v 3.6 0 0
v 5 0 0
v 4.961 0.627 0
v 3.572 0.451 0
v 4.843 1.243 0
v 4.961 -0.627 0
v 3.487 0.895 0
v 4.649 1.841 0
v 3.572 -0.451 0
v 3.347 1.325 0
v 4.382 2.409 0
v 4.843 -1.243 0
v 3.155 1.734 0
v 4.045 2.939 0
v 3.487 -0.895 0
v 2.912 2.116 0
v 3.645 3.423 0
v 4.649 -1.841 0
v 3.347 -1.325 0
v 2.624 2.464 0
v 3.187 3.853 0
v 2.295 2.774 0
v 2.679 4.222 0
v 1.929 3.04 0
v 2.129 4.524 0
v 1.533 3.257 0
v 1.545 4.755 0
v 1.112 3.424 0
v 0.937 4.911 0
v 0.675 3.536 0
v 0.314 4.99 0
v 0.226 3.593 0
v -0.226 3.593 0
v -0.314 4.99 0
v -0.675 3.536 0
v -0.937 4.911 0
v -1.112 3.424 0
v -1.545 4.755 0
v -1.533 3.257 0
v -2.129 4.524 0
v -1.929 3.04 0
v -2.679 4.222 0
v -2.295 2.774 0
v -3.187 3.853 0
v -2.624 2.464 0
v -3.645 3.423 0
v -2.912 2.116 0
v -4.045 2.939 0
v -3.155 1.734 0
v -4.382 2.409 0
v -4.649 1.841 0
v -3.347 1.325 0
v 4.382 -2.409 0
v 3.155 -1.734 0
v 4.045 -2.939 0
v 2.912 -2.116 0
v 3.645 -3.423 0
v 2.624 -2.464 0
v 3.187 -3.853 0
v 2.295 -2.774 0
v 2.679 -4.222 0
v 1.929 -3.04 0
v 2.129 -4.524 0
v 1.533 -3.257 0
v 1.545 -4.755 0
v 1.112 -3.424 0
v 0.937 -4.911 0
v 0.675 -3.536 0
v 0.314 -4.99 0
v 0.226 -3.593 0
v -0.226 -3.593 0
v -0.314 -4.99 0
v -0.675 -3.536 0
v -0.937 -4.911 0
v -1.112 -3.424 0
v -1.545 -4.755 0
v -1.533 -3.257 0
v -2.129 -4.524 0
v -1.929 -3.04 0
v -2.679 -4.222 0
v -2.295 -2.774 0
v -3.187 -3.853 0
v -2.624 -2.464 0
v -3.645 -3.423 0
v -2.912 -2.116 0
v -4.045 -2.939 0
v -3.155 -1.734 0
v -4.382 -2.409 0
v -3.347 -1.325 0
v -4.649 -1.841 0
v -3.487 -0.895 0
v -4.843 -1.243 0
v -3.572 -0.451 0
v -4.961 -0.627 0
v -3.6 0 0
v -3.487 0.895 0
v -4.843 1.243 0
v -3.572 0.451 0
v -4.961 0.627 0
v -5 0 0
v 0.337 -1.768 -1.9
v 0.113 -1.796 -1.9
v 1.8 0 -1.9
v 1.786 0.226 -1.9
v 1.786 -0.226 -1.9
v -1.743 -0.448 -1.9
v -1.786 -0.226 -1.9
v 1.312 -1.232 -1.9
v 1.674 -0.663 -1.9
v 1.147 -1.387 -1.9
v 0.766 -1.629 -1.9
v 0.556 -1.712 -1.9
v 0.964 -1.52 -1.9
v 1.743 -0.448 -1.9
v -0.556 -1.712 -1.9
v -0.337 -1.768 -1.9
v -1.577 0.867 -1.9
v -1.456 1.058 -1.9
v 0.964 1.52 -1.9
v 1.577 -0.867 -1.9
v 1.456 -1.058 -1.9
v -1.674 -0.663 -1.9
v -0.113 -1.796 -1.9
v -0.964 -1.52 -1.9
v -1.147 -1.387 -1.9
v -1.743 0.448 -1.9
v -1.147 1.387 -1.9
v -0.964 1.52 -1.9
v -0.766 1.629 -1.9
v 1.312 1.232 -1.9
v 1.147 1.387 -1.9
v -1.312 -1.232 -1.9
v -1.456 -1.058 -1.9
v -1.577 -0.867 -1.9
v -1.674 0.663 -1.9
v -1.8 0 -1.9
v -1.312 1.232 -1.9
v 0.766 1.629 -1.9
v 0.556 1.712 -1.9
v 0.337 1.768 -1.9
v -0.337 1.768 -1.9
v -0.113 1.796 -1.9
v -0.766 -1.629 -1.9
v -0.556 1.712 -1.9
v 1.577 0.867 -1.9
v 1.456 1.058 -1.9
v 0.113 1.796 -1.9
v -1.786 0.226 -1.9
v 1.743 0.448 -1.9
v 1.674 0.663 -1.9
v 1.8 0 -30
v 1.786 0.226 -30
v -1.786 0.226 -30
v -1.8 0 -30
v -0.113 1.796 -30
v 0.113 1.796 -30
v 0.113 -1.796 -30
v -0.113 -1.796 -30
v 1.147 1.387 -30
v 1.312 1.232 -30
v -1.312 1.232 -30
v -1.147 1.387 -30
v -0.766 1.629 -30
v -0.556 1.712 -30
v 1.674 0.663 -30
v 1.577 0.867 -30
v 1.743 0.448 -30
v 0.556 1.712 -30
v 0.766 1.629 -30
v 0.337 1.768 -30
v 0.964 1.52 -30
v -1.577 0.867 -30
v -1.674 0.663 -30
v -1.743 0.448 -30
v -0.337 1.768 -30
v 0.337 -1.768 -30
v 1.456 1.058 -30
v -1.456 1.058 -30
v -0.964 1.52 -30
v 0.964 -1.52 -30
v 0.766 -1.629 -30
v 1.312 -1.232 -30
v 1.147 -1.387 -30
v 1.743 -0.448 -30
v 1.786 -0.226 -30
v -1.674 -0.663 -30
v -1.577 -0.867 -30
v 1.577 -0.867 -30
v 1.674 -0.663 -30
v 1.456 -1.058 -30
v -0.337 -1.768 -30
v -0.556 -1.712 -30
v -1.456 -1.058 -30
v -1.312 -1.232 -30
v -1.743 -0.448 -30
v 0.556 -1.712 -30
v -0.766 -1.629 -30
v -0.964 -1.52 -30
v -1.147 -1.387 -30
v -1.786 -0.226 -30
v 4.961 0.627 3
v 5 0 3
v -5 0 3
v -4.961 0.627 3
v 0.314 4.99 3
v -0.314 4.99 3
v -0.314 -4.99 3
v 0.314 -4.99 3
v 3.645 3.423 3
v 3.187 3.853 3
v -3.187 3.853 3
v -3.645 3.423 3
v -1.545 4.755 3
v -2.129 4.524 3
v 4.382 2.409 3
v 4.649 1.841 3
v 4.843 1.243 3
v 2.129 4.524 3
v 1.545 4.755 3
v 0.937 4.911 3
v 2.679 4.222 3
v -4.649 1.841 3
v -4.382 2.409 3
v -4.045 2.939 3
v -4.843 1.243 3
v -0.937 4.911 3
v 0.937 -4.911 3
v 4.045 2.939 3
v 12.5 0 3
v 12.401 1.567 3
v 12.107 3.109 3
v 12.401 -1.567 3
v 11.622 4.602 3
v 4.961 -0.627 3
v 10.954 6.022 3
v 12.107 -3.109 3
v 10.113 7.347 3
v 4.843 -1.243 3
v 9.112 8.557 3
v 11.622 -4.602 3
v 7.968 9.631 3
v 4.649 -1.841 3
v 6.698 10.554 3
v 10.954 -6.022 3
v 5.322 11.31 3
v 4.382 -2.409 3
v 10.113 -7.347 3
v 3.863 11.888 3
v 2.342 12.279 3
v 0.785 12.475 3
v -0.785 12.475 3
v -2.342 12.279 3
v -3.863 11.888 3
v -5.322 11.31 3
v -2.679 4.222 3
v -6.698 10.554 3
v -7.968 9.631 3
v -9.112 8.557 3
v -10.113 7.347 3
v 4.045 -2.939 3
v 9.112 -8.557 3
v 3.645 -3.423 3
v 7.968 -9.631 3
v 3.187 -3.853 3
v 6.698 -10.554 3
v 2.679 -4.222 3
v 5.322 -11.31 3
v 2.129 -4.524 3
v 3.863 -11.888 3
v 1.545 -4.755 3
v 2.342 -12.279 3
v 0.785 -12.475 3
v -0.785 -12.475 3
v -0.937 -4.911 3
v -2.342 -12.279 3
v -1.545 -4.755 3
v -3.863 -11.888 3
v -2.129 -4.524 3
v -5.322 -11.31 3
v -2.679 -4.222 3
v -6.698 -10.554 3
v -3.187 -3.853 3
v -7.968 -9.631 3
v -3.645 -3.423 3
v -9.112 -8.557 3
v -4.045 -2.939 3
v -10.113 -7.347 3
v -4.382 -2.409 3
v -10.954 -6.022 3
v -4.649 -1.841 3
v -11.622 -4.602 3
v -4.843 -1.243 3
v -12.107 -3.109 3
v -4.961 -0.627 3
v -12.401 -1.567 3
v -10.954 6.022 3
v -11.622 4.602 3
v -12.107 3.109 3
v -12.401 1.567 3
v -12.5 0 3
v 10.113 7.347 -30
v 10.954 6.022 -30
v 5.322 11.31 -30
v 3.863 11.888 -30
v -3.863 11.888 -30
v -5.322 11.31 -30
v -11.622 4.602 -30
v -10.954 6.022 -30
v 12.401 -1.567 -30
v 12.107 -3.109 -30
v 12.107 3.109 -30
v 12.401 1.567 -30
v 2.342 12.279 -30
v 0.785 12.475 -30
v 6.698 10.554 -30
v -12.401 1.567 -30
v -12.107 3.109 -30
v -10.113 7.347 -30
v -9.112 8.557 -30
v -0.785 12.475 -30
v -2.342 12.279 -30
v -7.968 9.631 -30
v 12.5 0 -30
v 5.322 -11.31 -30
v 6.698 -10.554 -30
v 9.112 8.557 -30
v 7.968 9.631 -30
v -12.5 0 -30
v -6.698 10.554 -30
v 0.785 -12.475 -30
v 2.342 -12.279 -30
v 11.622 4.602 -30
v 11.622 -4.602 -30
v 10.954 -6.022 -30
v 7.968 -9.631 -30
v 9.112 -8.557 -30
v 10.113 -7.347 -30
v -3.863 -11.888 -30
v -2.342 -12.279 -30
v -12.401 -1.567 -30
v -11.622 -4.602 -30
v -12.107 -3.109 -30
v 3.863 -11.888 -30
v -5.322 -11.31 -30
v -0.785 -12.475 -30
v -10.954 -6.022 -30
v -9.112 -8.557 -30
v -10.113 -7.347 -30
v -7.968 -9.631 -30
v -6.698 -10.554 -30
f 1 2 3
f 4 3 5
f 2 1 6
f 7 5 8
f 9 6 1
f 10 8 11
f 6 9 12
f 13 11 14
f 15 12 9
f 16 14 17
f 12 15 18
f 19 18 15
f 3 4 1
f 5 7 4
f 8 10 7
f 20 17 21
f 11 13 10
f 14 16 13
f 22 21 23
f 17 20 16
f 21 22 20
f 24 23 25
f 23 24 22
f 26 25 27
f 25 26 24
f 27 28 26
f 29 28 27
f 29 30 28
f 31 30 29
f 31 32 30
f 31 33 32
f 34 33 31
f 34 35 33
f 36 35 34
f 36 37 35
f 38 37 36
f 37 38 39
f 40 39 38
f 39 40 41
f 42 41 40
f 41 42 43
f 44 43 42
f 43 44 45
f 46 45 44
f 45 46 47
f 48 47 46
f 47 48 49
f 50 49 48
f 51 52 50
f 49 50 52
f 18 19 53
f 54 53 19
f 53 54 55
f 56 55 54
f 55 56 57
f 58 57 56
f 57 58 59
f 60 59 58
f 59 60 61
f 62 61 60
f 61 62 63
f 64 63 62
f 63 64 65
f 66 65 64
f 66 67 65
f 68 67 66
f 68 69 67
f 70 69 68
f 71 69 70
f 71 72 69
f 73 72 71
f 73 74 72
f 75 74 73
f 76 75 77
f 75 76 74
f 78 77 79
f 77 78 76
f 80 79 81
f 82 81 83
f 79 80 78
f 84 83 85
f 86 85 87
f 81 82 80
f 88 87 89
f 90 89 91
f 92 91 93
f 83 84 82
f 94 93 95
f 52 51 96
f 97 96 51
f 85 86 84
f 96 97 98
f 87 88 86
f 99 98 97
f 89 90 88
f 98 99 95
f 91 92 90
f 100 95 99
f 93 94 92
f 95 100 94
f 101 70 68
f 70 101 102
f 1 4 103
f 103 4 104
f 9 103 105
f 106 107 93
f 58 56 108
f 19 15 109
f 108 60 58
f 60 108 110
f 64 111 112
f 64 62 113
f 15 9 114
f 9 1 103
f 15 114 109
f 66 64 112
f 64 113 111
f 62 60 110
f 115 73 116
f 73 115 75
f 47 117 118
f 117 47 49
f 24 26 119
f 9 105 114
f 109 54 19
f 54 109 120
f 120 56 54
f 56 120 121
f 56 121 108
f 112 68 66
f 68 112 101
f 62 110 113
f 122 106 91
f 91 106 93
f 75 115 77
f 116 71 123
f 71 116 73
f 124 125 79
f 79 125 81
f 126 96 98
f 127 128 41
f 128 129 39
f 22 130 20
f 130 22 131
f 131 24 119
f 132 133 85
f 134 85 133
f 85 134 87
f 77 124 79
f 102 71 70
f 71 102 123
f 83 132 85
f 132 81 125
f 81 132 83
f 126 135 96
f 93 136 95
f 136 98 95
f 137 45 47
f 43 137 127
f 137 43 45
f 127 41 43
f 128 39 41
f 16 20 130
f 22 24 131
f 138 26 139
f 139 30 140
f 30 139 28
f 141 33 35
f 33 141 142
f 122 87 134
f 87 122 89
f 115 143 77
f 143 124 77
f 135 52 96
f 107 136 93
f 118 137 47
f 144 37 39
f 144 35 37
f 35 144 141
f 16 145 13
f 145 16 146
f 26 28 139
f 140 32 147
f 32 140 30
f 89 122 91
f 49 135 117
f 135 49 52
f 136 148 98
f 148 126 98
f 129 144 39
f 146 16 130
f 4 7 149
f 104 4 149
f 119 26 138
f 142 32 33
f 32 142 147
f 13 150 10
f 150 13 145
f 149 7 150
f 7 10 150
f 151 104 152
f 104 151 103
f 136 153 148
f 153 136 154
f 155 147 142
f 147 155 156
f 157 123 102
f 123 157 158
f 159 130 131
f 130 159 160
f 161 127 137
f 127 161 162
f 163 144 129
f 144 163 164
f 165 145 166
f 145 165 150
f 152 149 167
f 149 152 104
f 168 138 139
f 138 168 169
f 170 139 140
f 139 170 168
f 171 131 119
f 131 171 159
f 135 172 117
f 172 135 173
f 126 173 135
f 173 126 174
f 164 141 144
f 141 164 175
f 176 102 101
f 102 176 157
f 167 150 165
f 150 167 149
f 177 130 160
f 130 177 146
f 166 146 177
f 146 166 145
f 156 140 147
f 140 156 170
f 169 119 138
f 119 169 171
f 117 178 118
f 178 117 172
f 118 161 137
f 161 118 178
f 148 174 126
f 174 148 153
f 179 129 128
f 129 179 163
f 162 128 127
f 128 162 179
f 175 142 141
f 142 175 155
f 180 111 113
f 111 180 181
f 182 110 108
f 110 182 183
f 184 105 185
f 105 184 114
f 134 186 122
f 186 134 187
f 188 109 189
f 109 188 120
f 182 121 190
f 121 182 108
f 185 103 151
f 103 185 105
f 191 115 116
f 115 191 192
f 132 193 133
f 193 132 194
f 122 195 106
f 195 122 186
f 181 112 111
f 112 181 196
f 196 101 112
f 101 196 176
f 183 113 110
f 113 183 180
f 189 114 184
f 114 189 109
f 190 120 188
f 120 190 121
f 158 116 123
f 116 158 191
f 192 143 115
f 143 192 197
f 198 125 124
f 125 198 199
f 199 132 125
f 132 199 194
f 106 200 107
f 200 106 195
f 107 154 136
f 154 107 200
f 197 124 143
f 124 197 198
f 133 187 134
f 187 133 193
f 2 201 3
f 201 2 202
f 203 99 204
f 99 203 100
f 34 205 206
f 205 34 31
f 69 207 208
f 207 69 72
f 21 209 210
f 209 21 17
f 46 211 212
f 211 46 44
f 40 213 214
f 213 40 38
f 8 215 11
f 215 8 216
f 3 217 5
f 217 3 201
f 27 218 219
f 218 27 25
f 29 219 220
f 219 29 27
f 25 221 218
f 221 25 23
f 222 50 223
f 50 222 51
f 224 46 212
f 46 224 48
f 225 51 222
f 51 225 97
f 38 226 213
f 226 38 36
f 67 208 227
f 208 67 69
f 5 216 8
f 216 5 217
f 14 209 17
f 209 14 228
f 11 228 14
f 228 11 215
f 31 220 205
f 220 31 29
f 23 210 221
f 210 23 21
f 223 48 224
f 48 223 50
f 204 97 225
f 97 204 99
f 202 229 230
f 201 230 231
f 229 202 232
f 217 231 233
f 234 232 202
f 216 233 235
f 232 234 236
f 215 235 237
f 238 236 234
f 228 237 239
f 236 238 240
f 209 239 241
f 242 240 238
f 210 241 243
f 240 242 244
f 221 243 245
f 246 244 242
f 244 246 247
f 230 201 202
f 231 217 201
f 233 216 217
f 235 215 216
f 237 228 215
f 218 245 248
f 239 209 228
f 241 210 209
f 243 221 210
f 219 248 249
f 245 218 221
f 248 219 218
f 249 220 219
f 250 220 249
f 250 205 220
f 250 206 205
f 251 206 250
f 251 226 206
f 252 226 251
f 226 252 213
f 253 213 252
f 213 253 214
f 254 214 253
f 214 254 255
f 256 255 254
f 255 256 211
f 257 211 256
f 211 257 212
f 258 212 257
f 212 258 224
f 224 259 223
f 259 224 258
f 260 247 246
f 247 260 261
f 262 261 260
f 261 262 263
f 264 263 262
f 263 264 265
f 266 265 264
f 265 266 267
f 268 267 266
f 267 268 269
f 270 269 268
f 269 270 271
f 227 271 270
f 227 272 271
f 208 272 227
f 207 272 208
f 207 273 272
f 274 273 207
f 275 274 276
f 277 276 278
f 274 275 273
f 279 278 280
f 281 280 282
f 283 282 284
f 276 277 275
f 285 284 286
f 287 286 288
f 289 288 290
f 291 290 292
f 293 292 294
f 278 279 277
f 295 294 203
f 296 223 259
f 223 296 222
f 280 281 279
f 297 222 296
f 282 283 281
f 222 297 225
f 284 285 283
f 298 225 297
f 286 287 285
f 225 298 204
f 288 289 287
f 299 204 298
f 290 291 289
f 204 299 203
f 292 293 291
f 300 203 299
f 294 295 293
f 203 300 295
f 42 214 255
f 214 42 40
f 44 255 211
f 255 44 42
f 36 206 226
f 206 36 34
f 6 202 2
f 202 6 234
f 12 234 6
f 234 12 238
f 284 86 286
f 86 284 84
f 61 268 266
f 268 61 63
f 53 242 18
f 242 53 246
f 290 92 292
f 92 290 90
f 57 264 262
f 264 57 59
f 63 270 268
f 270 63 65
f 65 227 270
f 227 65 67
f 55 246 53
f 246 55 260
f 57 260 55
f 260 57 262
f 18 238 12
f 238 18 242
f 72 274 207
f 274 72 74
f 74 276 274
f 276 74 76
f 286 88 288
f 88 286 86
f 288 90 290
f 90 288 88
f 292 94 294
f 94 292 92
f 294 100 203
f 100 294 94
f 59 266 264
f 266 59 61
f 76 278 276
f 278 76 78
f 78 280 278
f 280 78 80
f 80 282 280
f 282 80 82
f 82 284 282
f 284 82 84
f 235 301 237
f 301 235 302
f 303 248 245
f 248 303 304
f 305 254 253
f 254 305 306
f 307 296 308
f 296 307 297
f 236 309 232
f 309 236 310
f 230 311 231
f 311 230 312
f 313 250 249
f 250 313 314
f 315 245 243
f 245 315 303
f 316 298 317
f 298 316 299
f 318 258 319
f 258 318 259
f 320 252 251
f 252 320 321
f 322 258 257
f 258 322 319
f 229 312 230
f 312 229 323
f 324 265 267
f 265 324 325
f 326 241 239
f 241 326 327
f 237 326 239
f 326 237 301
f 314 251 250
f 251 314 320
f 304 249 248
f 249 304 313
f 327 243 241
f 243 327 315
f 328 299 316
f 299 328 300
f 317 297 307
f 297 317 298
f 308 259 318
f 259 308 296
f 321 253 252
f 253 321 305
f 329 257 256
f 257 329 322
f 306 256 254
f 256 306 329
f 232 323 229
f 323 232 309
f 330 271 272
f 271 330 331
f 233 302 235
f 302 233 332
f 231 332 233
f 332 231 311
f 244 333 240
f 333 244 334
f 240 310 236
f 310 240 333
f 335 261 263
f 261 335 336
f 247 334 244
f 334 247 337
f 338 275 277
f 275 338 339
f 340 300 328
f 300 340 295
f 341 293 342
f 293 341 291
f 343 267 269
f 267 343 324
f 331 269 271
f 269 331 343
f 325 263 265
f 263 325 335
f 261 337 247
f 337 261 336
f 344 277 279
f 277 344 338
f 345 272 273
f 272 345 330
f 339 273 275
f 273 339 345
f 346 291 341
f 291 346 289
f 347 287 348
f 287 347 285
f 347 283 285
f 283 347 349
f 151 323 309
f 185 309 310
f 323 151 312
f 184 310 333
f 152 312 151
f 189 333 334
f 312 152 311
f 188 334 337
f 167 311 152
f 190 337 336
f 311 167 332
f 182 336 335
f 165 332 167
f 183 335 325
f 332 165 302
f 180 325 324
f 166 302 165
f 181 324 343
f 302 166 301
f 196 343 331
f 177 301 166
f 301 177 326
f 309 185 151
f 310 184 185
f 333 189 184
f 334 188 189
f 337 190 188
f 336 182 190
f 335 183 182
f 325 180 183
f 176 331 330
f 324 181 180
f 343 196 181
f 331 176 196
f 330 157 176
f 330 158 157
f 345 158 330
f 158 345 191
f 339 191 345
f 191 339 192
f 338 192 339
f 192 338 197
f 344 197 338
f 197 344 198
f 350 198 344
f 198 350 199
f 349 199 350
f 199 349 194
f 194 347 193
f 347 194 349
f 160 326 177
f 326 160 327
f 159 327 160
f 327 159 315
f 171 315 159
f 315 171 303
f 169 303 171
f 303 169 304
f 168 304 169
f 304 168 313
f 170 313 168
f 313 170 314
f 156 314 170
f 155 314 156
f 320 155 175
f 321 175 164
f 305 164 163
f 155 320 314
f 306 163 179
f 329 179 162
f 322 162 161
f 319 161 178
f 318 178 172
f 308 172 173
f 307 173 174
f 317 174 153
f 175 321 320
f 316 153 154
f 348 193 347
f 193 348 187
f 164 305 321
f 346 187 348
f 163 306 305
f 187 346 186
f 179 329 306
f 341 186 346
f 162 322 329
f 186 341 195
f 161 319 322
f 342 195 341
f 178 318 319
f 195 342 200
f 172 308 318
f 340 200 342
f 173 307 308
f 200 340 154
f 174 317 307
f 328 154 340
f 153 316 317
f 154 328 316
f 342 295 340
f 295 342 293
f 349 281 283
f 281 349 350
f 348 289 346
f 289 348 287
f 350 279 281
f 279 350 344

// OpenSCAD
$fn = 50;

difference() {
	union() {
		translate(v = [0, 0, -30.0]) {
			cylinder(h = 33, r = 12.5);
		}
	}
	union() {
		translate(v = [0, 0, 0]) {
			rotate(a = [0, 0, 0]) {
				difference() {
					union() {
						translate(v = [0, 0, -33.0]) {
							cylinder(h = 33, r = 1.5);
						}
						translate(v = [0, 0, -1.9]) {
							cylinder(h = 1.9, r1 = 1.8, r2 = 3.6);
						}
						translate(v = [0, 0, -33.0]) {
							cylinder(h = 33, r = 1.8);
						}
						translate(v = [0, 0, -33.0]) {
							cylinder(h = 33, r = 1.5);
						}
					}
					union();
				}
			}
		}
		#cylinder(h = 3, r = 5.0);
	}
}
